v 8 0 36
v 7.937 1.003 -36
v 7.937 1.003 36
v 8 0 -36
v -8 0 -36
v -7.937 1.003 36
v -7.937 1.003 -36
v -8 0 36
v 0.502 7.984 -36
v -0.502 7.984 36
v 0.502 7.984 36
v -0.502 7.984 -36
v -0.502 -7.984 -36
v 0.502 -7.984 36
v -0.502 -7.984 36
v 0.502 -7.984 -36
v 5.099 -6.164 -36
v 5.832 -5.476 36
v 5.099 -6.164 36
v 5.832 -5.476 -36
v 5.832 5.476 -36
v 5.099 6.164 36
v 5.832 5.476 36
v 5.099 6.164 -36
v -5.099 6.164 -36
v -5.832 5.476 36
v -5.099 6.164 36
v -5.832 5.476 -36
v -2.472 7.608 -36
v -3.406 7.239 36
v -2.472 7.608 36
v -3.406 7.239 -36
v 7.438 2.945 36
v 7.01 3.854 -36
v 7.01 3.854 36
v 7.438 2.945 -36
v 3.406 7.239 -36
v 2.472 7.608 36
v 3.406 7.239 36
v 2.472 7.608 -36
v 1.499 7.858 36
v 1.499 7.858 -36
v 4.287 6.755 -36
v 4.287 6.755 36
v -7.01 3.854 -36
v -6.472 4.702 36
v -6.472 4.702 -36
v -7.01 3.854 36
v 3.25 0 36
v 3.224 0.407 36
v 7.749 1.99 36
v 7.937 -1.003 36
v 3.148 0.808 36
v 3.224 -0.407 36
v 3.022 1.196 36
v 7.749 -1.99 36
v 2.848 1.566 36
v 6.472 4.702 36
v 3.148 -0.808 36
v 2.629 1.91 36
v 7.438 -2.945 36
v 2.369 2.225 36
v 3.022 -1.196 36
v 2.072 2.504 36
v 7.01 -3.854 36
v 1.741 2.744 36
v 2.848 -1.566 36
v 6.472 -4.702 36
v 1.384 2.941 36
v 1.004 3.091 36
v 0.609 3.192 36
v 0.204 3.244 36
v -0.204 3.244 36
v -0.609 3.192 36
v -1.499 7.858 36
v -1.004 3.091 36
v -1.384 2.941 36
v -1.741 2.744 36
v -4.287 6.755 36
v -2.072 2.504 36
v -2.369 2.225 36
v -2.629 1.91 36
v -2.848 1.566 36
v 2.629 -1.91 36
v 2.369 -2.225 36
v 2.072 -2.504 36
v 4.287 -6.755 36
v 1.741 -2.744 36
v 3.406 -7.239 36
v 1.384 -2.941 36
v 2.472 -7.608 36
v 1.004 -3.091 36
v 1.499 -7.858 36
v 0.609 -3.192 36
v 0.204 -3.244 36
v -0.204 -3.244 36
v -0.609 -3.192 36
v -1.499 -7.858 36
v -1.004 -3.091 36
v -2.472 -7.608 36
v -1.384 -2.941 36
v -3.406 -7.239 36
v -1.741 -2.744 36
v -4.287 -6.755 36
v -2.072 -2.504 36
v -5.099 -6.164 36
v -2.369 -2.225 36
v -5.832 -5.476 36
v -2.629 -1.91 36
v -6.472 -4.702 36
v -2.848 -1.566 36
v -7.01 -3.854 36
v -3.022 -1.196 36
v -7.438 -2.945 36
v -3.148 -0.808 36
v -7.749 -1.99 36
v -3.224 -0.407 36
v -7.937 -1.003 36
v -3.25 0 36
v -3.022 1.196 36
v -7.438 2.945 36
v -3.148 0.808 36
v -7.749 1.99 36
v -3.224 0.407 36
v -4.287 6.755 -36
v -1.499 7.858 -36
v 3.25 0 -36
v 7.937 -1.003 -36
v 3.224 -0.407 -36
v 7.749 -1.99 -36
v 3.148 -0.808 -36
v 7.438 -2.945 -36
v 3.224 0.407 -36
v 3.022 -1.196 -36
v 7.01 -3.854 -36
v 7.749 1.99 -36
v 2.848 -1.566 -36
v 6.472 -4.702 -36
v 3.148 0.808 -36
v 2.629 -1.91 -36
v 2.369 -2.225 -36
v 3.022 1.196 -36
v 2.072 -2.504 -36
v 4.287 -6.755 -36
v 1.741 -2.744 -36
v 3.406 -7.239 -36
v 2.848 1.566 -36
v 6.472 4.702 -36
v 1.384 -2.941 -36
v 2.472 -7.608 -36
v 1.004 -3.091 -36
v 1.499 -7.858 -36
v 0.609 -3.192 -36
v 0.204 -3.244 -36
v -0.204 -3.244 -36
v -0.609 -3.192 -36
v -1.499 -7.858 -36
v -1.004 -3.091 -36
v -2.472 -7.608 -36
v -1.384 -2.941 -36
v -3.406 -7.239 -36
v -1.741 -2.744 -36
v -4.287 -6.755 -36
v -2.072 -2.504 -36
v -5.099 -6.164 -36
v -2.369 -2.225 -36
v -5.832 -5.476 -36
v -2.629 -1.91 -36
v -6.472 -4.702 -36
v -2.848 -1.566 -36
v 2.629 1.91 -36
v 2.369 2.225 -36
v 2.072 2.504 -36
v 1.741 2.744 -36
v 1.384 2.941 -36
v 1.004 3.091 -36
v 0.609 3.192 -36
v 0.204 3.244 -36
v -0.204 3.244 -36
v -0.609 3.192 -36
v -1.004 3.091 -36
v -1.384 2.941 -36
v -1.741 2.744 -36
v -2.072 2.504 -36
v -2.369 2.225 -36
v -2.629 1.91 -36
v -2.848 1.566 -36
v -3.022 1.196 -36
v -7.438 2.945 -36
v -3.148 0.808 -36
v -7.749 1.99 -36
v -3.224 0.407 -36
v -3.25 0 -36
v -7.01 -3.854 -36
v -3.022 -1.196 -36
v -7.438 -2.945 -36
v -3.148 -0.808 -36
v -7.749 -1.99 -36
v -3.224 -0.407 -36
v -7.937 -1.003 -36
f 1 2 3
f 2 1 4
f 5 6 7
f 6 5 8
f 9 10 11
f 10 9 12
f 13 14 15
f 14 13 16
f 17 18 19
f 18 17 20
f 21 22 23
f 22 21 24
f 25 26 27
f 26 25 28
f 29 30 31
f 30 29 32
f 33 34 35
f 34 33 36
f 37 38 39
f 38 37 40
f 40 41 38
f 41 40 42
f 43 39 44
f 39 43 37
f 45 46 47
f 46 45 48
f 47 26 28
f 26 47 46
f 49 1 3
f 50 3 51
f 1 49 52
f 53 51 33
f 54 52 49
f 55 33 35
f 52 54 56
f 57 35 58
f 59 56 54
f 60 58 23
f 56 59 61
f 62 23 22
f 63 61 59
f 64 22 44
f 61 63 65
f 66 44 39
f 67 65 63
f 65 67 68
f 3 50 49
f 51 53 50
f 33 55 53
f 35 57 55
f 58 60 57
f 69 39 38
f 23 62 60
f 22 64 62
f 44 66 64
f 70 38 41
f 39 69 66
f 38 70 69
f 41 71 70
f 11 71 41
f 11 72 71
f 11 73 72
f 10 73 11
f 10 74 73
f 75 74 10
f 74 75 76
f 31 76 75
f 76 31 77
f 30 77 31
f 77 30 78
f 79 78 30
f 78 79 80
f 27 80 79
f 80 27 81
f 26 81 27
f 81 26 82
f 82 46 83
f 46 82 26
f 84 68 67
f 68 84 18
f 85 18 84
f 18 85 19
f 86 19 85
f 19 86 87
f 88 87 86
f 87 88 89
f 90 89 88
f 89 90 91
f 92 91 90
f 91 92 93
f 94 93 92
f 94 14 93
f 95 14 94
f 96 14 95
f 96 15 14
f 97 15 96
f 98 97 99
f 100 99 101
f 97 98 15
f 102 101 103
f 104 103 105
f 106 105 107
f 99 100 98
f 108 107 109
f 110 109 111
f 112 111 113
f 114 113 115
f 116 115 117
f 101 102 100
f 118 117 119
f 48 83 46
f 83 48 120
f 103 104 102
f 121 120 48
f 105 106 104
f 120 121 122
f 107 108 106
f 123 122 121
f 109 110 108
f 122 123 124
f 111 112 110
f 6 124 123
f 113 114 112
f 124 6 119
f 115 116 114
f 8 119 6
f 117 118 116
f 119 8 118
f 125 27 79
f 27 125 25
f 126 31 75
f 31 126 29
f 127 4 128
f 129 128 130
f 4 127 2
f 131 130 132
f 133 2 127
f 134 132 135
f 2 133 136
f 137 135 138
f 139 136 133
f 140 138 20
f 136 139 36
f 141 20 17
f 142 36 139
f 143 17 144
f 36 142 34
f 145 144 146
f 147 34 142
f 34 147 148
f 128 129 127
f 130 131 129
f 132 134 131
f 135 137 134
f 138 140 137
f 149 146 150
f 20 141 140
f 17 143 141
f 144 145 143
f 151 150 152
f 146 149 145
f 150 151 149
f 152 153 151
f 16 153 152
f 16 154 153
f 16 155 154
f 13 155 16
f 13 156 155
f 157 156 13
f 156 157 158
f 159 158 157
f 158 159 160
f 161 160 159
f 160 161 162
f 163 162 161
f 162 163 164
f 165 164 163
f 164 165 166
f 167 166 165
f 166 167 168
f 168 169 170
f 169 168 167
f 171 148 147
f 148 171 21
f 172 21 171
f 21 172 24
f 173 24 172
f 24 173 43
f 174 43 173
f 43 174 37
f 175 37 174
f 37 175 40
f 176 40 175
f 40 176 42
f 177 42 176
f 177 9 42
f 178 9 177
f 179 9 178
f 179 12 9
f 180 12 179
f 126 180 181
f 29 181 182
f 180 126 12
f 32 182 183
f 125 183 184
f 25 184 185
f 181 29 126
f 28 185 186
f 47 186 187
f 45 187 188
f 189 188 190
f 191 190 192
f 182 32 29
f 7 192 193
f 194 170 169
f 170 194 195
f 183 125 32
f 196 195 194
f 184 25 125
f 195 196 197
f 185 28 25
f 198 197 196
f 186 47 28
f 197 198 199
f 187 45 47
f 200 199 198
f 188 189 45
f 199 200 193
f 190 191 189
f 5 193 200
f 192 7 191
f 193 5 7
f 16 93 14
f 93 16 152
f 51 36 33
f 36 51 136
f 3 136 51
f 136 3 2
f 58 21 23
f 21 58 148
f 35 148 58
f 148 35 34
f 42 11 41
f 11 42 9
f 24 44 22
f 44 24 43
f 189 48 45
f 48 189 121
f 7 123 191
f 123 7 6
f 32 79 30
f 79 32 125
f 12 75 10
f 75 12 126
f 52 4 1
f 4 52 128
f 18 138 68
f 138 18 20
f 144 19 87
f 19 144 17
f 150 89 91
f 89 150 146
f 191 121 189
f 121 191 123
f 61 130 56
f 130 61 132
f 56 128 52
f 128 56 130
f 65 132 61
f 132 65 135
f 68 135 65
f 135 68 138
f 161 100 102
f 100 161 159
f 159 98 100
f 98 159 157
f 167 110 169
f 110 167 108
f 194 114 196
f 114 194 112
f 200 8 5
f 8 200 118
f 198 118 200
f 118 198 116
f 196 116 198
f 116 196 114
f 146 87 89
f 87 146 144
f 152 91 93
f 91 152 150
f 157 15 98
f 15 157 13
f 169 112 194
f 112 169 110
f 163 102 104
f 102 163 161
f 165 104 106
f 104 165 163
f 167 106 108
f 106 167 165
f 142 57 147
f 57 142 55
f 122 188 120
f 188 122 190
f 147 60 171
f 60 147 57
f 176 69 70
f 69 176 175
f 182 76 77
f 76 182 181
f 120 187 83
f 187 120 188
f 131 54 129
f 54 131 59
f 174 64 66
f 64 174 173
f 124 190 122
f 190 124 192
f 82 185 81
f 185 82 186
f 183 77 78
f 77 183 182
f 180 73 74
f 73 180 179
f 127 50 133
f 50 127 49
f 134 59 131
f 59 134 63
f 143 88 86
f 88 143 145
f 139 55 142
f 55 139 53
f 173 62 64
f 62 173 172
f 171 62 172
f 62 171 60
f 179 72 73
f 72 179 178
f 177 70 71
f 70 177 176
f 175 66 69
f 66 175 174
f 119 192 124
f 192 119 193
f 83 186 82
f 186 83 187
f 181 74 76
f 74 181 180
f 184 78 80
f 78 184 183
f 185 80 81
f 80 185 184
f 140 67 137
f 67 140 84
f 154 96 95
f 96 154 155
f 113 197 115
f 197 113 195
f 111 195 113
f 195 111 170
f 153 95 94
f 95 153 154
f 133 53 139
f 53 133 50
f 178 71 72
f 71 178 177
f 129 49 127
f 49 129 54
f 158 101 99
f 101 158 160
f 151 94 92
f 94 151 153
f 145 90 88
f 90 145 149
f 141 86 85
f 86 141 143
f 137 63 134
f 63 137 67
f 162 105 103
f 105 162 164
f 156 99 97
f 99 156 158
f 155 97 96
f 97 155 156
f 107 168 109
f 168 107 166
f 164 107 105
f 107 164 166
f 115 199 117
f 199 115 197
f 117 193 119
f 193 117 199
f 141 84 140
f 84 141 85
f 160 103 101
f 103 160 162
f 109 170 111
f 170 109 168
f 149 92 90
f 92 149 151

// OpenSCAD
$fn = 50;


difference() {
	union() {
		translate(v = [0, 0, -36.0000000000]) {
			cylinder(h = 72, r = 8.0000000000);
		}
	}
	union() {
		translate(v = [0, 0, -100.0000000000]) {
			cylinder(h = 200, r = 3.2500000000);
		}
	}
}
